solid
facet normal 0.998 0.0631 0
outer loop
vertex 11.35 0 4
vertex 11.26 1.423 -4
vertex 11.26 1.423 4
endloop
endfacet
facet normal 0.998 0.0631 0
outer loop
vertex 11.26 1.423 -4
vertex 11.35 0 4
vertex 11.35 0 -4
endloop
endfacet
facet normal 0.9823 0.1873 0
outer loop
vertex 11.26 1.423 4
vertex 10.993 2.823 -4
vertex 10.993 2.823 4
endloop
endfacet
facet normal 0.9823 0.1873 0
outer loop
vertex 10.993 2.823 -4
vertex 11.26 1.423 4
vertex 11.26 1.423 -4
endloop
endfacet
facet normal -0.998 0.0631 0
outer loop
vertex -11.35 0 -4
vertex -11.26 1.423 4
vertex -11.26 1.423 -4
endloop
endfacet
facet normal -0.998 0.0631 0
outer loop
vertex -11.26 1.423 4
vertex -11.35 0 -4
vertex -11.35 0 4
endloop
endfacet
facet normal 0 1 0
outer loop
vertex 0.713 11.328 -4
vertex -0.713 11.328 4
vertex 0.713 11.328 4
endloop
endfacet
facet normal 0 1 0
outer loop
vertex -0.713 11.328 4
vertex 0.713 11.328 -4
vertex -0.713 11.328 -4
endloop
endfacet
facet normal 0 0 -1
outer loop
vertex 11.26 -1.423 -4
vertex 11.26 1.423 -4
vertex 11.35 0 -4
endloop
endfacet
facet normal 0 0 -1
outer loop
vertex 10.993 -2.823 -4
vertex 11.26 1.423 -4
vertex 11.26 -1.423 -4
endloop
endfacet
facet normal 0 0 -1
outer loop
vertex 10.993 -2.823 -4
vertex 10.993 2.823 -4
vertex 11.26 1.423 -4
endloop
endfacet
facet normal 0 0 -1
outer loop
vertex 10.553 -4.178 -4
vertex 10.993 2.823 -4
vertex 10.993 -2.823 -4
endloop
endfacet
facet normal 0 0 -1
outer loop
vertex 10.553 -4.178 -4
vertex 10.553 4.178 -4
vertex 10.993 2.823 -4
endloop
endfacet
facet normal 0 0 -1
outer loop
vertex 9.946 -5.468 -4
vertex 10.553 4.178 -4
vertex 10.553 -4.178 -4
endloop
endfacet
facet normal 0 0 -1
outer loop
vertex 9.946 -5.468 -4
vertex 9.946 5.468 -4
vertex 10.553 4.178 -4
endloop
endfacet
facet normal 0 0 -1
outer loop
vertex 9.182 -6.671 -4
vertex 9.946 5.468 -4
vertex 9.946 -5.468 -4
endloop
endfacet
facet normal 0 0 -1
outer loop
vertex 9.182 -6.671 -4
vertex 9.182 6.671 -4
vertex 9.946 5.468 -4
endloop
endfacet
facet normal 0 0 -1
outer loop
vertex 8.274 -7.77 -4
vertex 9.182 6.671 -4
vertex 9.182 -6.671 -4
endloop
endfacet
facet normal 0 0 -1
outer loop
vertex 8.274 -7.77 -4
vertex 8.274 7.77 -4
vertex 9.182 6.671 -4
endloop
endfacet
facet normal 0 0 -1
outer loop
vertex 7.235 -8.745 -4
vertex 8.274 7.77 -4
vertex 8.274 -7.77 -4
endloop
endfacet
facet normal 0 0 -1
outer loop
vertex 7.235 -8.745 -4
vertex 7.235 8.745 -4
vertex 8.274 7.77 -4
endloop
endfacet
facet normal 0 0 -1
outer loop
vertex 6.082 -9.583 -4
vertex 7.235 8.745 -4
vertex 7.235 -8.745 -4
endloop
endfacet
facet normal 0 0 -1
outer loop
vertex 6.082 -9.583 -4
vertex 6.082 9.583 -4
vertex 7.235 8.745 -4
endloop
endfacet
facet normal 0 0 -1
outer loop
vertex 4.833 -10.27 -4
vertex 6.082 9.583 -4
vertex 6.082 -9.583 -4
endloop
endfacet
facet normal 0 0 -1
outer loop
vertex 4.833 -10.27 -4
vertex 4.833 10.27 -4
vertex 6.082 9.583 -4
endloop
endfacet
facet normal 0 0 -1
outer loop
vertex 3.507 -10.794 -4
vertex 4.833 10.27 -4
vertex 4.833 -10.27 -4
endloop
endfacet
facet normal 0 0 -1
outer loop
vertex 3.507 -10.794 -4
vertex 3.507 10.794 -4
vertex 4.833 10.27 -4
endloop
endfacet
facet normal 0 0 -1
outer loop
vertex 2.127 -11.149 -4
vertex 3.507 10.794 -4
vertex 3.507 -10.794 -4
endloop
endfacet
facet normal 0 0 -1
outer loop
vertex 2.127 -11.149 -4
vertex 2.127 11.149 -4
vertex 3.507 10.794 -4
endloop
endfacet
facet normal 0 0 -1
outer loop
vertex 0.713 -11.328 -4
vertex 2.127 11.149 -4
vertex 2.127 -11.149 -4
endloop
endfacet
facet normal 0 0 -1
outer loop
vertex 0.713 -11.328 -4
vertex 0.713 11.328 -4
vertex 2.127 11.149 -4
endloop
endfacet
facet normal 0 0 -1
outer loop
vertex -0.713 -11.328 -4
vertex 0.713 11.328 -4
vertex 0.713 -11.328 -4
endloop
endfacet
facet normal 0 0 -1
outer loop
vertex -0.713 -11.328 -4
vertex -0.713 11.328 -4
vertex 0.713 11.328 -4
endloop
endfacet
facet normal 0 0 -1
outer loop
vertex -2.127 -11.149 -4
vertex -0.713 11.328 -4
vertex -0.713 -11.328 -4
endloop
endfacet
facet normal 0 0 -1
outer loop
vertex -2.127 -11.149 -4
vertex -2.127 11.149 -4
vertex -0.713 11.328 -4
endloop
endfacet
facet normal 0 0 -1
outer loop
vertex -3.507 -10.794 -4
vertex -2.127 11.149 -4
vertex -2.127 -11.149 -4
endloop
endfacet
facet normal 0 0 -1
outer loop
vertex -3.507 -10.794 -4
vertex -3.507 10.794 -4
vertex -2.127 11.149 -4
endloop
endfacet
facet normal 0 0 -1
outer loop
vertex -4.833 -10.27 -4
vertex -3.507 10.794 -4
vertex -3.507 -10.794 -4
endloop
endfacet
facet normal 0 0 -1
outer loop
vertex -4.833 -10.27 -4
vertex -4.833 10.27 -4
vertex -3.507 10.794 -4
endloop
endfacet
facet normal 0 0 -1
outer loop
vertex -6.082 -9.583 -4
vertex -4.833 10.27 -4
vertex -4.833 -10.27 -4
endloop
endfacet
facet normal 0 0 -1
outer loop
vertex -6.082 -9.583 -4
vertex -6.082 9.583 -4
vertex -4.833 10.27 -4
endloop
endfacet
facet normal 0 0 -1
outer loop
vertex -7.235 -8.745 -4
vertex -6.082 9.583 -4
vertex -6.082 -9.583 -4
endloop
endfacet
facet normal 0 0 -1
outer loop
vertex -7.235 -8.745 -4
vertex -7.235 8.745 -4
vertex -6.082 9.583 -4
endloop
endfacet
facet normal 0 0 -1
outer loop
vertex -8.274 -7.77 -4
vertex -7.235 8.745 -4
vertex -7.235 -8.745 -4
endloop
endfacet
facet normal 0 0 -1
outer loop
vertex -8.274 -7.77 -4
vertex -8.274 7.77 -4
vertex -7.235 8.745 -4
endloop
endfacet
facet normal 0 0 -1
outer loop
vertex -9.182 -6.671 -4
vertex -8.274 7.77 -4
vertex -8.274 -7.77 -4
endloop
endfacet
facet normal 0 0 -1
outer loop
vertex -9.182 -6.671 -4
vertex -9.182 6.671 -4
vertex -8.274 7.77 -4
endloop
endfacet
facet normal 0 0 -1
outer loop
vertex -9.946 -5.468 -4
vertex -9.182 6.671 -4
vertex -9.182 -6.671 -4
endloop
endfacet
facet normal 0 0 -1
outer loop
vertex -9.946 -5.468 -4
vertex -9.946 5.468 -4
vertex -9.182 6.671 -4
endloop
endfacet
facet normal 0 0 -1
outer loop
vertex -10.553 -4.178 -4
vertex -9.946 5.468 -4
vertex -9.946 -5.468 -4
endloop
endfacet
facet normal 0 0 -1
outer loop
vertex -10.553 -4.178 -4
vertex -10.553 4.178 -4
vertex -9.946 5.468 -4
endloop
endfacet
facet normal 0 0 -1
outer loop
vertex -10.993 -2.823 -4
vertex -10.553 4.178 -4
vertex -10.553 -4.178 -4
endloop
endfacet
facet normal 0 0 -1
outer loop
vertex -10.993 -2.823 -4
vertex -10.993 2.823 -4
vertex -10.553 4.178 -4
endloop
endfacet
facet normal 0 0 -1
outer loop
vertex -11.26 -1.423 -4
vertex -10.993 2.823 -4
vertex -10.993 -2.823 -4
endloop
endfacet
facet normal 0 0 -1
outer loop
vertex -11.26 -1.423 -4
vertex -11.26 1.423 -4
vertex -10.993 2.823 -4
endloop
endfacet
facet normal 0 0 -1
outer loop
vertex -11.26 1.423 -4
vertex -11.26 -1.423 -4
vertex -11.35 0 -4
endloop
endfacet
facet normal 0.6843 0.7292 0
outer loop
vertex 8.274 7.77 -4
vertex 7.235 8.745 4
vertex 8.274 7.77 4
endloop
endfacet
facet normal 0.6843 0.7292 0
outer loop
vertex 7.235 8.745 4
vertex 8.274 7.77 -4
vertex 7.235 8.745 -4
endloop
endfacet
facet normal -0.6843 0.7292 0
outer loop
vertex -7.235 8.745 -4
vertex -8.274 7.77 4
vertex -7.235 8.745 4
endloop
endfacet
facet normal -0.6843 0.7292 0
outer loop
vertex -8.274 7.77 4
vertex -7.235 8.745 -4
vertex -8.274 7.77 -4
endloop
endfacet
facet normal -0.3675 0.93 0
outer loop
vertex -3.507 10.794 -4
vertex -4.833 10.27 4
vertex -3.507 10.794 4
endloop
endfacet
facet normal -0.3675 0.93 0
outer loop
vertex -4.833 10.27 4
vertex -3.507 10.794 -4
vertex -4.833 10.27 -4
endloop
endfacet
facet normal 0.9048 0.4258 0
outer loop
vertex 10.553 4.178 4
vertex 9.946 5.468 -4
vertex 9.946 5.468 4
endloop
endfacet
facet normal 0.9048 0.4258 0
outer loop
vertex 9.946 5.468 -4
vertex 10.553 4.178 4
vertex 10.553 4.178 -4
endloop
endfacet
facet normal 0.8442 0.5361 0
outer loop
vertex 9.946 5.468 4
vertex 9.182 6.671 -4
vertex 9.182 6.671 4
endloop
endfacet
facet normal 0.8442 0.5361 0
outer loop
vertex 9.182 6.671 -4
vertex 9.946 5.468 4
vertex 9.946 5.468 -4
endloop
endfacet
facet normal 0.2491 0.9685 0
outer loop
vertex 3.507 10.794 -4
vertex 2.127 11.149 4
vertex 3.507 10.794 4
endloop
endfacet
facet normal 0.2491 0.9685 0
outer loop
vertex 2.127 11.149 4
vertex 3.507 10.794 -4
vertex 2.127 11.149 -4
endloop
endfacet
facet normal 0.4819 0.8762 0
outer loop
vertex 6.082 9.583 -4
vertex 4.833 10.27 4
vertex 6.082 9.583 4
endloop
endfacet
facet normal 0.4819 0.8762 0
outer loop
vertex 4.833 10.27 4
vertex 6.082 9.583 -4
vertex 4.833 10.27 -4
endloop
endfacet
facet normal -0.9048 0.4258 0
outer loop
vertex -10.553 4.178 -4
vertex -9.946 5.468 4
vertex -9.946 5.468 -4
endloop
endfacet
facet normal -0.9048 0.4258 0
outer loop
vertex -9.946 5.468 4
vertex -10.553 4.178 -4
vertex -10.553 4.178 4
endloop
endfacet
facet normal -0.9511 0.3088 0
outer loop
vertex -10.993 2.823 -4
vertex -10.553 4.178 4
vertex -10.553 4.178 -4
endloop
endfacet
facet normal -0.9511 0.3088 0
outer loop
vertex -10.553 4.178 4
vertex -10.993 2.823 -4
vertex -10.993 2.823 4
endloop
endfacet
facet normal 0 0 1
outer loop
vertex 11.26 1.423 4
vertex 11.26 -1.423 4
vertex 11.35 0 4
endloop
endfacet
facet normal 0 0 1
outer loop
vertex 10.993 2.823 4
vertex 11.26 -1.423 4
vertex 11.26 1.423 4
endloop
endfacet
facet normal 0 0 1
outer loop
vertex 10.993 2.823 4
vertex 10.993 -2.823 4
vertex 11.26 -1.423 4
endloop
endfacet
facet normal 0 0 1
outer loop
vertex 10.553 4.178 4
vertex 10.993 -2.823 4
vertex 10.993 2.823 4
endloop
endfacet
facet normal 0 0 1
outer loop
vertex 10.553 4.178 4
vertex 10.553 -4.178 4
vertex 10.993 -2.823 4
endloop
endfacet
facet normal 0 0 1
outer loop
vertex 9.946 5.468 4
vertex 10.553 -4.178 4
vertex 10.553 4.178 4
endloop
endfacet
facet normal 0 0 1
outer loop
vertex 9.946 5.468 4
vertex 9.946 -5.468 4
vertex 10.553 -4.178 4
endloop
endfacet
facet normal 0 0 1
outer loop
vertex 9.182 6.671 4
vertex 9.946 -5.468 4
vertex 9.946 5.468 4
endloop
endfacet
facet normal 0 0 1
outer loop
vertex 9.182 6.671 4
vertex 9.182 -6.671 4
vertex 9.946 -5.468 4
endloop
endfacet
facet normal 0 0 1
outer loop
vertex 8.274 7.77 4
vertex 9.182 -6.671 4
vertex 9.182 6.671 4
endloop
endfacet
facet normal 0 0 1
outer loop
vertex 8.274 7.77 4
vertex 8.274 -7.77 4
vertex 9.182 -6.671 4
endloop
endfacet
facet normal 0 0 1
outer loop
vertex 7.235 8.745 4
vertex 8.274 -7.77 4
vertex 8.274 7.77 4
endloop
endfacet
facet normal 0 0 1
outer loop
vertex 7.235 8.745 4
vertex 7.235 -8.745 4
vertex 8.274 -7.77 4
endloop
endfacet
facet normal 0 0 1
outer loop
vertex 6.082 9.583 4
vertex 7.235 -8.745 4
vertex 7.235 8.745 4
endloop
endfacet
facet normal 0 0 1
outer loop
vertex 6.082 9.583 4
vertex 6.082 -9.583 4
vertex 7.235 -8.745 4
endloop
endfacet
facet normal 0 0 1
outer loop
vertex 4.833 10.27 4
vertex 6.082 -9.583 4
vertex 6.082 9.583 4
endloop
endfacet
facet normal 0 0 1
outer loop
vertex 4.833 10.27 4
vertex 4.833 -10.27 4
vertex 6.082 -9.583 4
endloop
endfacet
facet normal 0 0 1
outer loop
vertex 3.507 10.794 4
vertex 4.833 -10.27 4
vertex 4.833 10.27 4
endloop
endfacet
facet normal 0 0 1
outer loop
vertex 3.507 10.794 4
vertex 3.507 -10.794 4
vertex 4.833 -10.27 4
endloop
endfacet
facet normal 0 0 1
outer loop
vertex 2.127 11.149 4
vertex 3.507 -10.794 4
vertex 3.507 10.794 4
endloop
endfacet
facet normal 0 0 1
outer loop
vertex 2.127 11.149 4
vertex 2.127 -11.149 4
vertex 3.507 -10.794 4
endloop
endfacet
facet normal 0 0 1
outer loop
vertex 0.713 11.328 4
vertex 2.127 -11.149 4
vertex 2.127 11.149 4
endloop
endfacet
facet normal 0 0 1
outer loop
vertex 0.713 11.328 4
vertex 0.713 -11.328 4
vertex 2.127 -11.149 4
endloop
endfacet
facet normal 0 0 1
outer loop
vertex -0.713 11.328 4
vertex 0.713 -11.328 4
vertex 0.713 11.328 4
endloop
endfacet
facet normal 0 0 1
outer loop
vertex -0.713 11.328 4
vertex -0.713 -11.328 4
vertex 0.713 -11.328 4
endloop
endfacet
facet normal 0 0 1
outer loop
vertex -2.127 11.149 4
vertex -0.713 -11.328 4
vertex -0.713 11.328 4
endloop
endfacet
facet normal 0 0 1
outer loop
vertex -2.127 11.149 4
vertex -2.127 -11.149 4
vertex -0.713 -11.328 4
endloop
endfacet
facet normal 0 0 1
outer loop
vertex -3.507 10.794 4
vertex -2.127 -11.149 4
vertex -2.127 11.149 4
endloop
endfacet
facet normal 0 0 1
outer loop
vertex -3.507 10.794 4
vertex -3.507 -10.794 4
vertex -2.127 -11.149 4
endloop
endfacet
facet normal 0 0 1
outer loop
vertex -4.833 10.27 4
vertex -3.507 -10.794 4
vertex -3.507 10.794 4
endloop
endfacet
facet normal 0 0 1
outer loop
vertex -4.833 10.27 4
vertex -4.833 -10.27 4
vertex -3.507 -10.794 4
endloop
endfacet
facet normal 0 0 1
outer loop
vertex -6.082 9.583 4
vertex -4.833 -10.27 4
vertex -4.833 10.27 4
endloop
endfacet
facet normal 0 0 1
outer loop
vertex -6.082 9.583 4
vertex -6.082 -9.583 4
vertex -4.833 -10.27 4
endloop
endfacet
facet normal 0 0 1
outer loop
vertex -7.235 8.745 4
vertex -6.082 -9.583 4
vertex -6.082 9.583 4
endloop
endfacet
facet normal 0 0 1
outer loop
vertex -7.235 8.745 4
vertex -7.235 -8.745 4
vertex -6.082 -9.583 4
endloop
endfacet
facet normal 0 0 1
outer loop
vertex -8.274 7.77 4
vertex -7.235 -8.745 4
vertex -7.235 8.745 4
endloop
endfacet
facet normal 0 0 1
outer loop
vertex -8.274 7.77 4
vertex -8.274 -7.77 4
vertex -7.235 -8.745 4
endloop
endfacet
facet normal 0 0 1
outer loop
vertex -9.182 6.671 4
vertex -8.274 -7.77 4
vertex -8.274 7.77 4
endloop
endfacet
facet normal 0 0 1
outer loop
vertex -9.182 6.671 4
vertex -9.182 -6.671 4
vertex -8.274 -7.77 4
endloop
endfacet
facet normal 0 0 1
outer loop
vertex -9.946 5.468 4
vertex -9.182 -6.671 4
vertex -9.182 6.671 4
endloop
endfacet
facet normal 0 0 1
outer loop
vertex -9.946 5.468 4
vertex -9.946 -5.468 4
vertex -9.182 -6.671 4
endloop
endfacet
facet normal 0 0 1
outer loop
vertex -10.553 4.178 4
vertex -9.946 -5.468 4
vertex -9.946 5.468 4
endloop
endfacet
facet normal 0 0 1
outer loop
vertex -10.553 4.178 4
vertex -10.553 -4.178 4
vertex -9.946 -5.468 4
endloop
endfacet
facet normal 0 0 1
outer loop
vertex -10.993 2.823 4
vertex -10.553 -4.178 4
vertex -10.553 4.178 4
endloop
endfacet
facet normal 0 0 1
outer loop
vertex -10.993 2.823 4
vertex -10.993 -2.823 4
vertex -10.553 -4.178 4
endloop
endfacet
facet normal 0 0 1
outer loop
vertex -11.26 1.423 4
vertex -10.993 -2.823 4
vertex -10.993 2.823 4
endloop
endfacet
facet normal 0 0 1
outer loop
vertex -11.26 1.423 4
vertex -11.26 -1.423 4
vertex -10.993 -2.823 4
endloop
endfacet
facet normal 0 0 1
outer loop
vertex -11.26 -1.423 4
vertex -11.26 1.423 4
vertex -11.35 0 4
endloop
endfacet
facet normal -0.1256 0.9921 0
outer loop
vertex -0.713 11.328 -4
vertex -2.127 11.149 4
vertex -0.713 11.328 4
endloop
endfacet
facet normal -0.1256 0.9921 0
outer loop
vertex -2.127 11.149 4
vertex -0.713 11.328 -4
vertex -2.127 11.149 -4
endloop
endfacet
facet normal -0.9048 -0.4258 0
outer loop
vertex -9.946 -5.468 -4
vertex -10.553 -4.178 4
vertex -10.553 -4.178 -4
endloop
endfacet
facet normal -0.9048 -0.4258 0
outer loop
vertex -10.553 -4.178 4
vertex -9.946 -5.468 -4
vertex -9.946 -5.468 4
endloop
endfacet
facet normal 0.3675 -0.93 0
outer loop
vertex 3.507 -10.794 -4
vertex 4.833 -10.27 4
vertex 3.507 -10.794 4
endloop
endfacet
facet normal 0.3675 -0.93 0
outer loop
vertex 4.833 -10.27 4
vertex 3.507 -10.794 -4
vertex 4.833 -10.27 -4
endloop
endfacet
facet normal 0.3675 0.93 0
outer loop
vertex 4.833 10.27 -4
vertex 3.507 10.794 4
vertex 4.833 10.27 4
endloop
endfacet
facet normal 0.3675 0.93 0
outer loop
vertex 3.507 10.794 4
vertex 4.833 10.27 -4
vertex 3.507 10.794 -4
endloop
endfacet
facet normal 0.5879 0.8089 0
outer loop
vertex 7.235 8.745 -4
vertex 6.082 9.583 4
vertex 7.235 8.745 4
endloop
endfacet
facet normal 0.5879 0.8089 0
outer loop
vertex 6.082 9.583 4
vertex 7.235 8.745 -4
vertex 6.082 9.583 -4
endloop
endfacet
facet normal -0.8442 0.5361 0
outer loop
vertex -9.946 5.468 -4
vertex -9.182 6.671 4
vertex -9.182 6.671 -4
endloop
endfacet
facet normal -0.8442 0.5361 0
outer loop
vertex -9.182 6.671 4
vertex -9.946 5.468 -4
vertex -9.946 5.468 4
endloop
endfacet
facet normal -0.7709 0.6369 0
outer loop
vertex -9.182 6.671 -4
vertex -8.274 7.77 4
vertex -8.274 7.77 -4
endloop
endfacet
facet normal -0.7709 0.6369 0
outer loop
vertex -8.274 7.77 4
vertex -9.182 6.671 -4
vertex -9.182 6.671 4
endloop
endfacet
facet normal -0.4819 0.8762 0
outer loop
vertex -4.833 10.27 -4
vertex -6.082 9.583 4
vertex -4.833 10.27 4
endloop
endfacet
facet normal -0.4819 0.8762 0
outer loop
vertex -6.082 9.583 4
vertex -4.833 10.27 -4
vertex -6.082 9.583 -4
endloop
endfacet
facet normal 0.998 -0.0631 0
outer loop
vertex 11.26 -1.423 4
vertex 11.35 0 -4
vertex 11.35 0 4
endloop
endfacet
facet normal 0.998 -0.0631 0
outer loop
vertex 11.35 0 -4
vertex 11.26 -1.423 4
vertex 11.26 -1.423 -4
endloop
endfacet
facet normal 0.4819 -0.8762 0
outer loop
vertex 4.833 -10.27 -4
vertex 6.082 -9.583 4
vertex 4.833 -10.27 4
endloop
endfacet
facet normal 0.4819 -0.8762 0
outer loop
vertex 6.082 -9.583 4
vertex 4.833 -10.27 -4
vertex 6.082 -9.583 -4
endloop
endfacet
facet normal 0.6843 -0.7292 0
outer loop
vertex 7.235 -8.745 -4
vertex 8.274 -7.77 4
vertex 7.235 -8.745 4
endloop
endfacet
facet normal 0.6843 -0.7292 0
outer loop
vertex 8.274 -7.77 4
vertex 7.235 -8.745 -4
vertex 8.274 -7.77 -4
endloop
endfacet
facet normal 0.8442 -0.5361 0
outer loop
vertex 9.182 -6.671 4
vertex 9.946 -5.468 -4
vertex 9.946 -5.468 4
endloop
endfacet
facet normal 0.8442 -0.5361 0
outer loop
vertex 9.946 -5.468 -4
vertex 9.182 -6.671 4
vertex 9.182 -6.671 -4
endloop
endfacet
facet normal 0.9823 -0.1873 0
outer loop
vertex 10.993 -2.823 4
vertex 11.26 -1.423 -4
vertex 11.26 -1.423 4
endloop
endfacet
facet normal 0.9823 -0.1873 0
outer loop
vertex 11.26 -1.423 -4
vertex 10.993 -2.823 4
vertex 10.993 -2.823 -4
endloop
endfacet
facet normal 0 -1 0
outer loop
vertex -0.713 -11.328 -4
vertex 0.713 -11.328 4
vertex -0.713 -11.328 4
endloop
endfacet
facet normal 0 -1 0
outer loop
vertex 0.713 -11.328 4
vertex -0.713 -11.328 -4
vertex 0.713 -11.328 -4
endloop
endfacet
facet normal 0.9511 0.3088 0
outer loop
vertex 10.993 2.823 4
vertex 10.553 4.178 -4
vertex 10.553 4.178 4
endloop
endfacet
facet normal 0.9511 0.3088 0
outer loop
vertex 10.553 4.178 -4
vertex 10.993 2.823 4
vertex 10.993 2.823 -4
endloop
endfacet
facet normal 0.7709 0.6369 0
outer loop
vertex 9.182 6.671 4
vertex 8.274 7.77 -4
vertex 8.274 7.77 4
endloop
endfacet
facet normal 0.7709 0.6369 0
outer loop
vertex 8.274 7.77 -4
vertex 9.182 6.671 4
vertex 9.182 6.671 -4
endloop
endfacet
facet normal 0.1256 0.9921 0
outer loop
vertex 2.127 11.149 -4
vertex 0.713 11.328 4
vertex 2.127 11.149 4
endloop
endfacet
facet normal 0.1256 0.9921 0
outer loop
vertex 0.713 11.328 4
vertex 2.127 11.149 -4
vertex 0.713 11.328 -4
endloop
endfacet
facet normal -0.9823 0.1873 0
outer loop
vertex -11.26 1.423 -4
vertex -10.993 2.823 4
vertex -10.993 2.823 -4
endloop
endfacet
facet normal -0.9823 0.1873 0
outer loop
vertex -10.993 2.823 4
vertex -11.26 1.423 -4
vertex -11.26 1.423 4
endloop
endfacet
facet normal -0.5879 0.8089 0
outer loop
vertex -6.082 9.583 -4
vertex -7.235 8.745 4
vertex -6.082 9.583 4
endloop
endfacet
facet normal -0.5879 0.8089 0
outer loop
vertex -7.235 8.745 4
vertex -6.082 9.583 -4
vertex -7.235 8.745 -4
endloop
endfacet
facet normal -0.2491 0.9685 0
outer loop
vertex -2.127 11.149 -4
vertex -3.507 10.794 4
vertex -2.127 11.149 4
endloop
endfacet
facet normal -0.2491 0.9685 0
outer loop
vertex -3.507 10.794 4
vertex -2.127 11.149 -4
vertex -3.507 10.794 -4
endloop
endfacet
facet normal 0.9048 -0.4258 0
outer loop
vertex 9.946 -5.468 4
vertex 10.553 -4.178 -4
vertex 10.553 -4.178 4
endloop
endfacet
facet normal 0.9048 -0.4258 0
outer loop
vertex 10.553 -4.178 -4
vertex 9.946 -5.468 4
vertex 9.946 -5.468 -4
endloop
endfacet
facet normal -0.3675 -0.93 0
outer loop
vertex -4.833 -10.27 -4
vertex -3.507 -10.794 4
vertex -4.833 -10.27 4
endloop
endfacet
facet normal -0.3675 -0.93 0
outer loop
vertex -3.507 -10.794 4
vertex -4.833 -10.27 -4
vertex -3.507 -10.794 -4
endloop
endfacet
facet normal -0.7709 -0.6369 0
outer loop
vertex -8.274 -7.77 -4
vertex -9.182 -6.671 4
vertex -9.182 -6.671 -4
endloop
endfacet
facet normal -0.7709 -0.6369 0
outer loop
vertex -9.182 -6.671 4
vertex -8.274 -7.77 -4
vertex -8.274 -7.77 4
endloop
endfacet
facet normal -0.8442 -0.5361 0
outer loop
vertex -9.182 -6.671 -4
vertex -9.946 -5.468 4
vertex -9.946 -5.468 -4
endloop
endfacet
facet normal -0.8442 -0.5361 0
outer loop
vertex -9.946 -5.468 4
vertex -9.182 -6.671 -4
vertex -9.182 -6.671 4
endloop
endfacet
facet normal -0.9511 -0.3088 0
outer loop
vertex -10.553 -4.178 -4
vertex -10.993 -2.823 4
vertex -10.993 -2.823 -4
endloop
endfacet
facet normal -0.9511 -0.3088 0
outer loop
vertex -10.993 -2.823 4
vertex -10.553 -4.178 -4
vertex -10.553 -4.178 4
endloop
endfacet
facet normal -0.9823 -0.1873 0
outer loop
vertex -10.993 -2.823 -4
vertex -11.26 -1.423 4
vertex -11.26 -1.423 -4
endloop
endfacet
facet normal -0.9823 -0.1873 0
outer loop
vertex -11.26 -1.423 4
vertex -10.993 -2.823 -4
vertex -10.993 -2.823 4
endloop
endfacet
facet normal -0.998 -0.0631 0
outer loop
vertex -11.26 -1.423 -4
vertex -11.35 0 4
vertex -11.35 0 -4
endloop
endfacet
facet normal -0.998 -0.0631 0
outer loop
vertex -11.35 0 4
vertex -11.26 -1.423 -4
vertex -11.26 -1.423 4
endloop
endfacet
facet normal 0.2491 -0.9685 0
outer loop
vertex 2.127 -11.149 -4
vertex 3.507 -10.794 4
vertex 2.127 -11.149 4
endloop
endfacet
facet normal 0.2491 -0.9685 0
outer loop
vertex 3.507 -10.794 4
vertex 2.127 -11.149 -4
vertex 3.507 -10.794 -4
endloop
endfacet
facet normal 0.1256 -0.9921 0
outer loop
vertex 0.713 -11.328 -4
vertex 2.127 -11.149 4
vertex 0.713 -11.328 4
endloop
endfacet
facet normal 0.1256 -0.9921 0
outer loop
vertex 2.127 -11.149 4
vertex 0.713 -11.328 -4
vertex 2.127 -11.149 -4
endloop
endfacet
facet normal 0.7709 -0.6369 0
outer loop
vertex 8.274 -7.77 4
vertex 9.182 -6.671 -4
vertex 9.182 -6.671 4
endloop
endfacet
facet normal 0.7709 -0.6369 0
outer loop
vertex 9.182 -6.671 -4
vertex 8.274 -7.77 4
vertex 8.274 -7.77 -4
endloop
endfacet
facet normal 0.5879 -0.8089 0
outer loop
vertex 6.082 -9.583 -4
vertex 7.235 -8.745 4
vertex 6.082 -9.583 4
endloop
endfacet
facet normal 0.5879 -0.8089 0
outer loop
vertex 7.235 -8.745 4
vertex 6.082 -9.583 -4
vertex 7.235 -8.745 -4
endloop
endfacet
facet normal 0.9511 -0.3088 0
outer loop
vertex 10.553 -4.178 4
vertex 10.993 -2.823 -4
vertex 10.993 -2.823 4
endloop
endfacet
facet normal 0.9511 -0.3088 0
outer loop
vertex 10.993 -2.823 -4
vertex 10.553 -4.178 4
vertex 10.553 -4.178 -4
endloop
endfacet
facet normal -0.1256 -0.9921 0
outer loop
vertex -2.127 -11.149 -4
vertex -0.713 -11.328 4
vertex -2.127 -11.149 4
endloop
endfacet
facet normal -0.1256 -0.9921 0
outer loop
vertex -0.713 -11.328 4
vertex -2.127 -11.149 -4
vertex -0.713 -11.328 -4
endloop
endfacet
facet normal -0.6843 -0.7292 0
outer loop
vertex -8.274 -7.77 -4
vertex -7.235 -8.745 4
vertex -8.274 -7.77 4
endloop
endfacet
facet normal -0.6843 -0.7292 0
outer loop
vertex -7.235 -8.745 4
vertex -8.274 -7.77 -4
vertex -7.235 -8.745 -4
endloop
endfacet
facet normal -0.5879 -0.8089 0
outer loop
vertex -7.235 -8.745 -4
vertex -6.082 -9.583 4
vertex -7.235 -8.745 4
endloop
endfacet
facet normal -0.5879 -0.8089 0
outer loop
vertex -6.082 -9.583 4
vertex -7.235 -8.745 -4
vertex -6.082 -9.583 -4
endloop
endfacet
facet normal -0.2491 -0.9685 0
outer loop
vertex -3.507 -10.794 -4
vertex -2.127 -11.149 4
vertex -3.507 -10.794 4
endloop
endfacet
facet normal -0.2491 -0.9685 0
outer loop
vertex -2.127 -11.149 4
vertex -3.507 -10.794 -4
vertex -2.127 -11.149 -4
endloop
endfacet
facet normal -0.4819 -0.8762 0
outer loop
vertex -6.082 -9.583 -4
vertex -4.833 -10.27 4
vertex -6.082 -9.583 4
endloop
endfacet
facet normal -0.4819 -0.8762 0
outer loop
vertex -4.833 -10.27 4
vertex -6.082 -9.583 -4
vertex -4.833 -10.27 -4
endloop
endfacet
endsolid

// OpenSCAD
$fn = 50;


difference() {
	union() {
		translate(v = [0, 0, -4.0000000000]) {
			cylinder(h = 8, r = 11.3500000000);
		}
	}
	union() {
		translate(v = [0, 0, -100.0000000000]) {
			cylinder(h = 200, r = 0);
		}
	}
}
